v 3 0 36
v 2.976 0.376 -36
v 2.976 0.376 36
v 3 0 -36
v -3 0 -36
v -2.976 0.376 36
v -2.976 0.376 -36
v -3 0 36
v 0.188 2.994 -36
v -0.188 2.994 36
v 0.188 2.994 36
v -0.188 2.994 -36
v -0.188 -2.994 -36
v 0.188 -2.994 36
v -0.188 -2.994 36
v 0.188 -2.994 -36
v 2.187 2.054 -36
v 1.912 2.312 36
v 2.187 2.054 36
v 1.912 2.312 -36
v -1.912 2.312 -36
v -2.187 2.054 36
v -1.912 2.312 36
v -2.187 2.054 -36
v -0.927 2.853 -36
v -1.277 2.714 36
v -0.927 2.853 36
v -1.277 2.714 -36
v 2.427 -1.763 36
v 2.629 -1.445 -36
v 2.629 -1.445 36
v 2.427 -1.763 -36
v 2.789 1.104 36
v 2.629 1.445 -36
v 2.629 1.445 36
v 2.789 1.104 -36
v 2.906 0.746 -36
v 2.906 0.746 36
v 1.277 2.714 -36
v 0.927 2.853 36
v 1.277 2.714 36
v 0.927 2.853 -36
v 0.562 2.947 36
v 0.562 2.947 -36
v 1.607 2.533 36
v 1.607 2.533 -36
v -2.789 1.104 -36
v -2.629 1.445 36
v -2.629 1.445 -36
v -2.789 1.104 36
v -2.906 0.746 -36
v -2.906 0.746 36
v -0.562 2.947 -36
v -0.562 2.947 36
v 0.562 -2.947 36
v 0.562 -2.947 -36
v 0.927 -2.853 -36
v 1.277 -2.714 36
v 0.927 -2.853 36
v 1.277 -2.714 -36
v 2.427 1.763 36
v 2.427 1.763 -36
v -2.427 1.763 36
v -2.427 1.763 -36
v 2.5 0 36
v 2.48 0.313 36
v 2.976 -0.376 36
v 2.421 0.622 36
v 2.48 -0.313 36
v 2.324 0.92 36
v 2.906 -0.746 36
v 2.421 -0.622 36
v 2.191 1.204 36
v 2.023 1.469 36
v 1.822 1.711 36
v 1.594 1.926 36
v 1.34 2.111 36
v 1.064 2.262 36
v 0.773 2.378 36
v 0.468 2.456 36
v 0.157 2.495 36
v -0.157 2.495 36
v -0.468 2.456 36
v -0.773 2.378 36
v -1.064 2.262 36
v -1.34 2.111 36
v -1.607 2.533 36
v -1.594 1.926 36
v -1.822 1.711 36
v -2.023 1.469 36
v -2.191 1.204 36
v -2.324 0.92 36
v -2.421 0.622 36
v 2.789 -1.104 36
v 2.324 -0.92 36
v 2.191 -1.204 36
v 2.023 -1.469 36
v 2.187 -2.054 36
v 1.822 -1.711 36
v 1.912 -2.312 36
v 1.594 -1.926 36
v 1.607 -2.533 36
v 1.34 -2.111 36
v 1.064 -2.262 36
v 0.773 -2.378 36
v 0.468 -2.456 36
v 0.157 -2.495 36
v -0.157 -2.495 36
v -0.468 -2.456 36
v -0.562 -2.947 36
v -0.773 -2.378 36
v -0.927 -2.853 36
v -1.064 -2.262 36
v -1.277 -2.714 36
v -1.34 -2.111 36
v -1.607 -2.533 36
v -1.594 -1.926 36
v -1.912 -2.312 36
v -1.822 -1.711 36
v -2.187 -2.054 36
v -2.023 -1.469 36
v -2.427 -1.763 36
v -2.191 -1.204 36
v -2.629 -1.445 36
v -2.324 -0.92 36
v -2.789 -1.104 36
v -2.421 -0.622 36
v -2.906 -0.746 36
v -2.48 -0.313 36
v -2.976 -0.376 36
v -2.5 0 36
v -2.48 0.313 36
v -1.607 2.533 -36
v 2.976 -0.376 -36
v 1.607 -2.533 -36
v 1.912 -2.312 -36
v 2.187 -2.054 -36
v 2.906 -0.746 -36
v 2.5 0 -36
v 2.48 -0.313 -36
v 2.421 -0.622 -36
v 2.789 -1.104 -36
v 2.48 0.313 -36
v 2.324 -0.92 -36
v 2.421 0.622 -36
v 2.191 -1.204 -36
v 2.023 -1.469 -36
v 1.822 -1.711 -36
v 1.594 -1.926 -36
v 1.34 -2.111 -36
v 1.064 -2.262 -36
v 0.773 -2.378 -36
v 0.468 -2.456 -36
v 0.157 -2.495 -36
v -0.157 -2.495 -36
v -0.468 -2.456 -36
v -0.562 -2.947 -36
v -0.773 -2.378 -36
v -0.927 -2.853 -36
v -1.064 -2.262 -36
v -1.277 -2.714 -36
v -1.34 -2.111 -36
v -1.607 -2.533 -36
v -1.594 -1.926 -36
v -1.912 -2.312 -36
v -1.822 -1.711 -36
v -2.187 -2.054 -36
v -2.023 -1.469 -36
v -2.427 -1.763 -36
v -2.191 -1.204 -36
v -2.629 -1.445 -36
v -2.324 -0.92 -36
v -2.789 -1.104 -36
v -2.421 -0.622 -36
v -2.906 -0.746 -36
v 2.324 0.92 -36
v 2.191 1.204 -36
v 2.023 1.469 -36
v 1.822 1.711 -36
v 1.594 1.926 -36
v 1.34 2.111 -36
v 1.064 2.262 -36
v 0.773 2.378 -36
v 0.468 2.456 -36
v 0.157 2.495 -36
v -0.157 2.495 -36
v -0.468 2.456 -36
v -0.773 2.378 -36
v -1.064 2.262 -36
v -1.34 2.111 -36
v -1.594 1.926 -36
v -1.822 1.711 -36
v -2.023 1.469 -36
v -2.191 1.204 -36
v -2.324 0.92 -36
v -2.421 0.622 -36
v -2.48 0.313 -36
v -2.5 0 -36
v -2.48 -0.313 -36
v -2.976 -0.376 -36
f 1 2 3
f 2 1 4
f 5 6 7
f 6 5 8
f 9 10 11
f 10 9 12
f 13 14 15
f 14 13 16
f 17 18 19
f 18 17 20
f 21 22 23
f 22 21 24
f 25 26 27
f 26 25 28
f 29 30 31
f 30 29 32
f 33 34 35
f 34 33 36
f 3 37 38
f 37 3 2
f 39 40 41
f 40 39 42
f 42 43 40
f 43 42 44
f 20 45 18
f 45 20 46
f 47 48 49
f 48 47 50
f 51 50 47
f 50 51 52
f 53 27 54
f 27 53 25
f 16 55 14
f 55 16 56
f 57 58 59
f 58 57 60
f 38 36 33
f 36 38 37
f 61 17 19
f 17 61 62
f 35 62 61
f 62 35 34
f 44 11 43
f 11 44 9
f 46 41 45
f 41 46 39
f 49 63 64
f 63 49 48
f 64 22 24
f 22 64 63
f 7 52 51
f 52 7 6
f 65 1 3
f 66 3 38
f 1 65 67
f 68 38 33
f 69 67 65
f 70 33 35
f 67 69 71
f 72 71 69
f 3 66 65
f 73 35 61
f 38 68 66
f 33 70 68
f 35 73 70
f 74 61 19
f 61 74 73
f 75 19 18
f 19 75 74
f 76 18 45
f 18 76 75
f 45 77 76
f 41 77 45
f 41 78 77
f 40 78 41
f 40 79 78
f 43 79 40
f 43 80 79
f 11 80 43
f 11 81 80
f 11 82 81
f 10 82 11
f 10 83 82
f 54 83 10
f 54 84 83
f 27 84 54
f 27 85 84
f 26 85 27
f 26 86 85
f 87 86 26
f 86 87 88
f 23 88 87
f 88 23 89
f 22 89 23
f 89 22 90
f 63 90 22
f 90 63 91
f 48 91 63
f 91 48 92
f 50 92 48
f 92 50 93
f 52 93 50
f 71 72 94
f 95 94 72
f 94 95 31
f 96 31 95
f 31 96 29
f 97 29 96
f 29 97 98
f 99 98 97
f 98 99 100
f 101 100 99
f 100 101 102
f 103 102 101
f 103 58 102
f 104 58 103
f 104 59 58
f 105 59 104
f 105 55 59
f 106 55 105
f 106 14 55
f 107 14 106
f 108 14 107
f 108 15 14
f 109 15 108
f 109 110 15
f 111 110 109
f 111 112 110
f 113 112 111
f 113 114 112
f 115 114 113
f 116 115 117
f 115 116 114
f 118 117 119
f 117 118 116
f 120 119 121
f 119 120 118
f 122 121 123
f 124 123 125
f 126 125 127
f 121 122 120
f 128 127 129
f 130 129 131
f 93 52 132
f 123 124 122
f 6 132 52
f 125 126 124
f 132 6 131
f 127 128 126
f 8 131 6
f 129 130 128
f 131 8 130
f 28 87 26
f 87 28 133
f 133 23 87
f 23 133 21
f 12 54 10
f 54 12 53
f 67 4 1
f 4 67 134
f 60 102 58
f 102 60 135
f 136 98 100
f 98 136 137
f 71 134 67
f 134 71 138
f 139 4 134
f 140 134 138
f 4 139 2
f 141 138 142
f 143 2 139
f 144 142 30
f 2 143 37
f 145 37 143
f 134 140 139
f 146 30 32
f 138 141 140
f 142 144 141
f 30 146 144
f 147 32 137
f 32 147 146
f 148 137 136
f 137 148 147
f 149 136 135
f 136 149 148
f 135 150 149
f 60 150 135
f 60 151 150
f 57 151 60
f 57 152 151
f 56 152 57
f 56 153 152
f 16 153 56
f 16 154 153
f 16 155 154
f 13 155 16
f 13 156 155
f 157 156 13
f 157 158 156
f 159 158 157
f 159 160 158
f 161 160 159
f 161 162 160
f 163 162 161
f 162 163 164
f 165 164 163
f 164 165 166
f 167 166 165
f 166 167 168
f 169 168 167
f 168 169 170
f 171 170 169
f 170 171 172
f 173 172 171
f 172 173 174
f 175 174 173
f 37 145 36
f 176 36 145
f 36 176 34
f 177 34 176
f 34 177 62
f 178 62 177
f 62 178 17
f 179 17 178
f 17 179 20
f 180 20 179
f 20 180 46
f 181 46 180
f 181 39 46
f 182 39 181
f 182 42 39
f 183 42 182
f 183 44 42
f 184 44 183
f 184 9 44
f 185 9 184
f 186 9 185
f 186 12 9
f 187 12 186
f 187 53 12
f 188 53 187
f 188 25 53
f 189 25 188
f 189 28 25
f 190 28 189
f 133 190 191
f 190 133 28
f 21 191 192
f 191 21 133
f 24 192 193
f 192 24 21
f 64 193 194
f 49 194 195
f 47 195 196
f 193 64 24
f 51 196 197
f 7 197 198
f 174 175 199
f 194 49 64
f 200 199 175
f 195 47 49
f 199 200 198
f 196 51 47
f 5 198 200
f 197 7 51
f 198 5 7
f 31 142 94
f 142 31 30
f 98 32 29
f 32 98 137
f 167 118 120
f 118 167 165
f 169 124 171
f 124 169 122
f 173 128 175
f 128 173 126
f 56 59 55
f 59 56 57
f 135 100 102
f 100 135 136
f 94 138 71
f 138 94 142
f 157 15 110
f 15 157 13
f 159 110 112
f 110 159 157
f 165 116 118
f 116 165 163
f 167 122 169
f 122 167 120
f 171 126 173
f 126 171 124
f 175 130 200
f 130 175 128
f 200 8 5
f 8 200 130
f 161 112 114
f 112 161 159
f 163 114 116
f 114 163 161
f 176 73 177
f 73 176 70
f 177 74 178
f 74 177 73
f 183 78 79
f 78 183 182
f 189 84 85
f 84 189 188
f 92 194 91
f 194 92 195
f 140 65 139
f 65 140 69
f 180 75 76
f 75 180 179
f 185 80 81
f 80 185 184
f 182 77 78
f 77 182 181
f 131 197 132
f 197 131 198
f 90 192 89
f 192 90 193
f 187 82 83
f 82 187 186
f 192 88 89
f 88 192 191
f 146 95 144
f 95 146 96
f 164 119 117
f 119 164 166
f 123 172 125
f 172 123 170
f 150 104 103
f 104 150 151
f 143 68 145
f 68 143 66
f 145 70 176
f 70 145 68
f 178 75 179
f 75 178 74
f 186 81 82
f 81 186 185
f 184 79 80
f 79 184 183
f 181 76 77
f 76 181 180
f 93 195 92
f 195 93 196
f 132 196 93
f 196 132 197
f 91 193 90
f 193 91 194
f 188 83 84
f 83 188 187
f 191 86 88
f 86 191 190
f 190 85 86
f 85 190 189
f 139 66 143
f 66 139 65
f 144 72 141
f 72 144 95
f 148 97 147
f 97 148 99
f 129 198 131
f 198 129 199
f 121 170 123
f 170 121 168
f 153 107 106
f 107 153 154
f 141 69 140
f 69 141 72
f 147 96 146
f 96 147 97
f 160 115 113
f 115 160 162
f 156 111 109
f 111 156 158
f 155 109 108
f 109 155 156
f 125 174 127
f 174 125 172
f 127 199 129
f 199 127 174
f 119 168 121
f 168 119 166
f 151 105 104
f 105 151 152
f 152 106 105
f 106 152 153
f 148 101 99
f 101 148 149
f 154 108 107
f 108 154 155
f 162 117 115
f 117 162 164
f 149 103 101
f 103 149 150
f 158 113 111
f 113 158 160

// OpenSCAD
$fn = 50;


difference() {
	union() {
		translate(v = [0, 0, -36.0000000000]) {
			cylinder(h = 72, r = 3.0000000000);
		}
	}
	union() {
		translate(v = [0, 0, -100.0000000000]) {
			cylinder(h = 200, r = 2.5000000000);
		}
	}
}
